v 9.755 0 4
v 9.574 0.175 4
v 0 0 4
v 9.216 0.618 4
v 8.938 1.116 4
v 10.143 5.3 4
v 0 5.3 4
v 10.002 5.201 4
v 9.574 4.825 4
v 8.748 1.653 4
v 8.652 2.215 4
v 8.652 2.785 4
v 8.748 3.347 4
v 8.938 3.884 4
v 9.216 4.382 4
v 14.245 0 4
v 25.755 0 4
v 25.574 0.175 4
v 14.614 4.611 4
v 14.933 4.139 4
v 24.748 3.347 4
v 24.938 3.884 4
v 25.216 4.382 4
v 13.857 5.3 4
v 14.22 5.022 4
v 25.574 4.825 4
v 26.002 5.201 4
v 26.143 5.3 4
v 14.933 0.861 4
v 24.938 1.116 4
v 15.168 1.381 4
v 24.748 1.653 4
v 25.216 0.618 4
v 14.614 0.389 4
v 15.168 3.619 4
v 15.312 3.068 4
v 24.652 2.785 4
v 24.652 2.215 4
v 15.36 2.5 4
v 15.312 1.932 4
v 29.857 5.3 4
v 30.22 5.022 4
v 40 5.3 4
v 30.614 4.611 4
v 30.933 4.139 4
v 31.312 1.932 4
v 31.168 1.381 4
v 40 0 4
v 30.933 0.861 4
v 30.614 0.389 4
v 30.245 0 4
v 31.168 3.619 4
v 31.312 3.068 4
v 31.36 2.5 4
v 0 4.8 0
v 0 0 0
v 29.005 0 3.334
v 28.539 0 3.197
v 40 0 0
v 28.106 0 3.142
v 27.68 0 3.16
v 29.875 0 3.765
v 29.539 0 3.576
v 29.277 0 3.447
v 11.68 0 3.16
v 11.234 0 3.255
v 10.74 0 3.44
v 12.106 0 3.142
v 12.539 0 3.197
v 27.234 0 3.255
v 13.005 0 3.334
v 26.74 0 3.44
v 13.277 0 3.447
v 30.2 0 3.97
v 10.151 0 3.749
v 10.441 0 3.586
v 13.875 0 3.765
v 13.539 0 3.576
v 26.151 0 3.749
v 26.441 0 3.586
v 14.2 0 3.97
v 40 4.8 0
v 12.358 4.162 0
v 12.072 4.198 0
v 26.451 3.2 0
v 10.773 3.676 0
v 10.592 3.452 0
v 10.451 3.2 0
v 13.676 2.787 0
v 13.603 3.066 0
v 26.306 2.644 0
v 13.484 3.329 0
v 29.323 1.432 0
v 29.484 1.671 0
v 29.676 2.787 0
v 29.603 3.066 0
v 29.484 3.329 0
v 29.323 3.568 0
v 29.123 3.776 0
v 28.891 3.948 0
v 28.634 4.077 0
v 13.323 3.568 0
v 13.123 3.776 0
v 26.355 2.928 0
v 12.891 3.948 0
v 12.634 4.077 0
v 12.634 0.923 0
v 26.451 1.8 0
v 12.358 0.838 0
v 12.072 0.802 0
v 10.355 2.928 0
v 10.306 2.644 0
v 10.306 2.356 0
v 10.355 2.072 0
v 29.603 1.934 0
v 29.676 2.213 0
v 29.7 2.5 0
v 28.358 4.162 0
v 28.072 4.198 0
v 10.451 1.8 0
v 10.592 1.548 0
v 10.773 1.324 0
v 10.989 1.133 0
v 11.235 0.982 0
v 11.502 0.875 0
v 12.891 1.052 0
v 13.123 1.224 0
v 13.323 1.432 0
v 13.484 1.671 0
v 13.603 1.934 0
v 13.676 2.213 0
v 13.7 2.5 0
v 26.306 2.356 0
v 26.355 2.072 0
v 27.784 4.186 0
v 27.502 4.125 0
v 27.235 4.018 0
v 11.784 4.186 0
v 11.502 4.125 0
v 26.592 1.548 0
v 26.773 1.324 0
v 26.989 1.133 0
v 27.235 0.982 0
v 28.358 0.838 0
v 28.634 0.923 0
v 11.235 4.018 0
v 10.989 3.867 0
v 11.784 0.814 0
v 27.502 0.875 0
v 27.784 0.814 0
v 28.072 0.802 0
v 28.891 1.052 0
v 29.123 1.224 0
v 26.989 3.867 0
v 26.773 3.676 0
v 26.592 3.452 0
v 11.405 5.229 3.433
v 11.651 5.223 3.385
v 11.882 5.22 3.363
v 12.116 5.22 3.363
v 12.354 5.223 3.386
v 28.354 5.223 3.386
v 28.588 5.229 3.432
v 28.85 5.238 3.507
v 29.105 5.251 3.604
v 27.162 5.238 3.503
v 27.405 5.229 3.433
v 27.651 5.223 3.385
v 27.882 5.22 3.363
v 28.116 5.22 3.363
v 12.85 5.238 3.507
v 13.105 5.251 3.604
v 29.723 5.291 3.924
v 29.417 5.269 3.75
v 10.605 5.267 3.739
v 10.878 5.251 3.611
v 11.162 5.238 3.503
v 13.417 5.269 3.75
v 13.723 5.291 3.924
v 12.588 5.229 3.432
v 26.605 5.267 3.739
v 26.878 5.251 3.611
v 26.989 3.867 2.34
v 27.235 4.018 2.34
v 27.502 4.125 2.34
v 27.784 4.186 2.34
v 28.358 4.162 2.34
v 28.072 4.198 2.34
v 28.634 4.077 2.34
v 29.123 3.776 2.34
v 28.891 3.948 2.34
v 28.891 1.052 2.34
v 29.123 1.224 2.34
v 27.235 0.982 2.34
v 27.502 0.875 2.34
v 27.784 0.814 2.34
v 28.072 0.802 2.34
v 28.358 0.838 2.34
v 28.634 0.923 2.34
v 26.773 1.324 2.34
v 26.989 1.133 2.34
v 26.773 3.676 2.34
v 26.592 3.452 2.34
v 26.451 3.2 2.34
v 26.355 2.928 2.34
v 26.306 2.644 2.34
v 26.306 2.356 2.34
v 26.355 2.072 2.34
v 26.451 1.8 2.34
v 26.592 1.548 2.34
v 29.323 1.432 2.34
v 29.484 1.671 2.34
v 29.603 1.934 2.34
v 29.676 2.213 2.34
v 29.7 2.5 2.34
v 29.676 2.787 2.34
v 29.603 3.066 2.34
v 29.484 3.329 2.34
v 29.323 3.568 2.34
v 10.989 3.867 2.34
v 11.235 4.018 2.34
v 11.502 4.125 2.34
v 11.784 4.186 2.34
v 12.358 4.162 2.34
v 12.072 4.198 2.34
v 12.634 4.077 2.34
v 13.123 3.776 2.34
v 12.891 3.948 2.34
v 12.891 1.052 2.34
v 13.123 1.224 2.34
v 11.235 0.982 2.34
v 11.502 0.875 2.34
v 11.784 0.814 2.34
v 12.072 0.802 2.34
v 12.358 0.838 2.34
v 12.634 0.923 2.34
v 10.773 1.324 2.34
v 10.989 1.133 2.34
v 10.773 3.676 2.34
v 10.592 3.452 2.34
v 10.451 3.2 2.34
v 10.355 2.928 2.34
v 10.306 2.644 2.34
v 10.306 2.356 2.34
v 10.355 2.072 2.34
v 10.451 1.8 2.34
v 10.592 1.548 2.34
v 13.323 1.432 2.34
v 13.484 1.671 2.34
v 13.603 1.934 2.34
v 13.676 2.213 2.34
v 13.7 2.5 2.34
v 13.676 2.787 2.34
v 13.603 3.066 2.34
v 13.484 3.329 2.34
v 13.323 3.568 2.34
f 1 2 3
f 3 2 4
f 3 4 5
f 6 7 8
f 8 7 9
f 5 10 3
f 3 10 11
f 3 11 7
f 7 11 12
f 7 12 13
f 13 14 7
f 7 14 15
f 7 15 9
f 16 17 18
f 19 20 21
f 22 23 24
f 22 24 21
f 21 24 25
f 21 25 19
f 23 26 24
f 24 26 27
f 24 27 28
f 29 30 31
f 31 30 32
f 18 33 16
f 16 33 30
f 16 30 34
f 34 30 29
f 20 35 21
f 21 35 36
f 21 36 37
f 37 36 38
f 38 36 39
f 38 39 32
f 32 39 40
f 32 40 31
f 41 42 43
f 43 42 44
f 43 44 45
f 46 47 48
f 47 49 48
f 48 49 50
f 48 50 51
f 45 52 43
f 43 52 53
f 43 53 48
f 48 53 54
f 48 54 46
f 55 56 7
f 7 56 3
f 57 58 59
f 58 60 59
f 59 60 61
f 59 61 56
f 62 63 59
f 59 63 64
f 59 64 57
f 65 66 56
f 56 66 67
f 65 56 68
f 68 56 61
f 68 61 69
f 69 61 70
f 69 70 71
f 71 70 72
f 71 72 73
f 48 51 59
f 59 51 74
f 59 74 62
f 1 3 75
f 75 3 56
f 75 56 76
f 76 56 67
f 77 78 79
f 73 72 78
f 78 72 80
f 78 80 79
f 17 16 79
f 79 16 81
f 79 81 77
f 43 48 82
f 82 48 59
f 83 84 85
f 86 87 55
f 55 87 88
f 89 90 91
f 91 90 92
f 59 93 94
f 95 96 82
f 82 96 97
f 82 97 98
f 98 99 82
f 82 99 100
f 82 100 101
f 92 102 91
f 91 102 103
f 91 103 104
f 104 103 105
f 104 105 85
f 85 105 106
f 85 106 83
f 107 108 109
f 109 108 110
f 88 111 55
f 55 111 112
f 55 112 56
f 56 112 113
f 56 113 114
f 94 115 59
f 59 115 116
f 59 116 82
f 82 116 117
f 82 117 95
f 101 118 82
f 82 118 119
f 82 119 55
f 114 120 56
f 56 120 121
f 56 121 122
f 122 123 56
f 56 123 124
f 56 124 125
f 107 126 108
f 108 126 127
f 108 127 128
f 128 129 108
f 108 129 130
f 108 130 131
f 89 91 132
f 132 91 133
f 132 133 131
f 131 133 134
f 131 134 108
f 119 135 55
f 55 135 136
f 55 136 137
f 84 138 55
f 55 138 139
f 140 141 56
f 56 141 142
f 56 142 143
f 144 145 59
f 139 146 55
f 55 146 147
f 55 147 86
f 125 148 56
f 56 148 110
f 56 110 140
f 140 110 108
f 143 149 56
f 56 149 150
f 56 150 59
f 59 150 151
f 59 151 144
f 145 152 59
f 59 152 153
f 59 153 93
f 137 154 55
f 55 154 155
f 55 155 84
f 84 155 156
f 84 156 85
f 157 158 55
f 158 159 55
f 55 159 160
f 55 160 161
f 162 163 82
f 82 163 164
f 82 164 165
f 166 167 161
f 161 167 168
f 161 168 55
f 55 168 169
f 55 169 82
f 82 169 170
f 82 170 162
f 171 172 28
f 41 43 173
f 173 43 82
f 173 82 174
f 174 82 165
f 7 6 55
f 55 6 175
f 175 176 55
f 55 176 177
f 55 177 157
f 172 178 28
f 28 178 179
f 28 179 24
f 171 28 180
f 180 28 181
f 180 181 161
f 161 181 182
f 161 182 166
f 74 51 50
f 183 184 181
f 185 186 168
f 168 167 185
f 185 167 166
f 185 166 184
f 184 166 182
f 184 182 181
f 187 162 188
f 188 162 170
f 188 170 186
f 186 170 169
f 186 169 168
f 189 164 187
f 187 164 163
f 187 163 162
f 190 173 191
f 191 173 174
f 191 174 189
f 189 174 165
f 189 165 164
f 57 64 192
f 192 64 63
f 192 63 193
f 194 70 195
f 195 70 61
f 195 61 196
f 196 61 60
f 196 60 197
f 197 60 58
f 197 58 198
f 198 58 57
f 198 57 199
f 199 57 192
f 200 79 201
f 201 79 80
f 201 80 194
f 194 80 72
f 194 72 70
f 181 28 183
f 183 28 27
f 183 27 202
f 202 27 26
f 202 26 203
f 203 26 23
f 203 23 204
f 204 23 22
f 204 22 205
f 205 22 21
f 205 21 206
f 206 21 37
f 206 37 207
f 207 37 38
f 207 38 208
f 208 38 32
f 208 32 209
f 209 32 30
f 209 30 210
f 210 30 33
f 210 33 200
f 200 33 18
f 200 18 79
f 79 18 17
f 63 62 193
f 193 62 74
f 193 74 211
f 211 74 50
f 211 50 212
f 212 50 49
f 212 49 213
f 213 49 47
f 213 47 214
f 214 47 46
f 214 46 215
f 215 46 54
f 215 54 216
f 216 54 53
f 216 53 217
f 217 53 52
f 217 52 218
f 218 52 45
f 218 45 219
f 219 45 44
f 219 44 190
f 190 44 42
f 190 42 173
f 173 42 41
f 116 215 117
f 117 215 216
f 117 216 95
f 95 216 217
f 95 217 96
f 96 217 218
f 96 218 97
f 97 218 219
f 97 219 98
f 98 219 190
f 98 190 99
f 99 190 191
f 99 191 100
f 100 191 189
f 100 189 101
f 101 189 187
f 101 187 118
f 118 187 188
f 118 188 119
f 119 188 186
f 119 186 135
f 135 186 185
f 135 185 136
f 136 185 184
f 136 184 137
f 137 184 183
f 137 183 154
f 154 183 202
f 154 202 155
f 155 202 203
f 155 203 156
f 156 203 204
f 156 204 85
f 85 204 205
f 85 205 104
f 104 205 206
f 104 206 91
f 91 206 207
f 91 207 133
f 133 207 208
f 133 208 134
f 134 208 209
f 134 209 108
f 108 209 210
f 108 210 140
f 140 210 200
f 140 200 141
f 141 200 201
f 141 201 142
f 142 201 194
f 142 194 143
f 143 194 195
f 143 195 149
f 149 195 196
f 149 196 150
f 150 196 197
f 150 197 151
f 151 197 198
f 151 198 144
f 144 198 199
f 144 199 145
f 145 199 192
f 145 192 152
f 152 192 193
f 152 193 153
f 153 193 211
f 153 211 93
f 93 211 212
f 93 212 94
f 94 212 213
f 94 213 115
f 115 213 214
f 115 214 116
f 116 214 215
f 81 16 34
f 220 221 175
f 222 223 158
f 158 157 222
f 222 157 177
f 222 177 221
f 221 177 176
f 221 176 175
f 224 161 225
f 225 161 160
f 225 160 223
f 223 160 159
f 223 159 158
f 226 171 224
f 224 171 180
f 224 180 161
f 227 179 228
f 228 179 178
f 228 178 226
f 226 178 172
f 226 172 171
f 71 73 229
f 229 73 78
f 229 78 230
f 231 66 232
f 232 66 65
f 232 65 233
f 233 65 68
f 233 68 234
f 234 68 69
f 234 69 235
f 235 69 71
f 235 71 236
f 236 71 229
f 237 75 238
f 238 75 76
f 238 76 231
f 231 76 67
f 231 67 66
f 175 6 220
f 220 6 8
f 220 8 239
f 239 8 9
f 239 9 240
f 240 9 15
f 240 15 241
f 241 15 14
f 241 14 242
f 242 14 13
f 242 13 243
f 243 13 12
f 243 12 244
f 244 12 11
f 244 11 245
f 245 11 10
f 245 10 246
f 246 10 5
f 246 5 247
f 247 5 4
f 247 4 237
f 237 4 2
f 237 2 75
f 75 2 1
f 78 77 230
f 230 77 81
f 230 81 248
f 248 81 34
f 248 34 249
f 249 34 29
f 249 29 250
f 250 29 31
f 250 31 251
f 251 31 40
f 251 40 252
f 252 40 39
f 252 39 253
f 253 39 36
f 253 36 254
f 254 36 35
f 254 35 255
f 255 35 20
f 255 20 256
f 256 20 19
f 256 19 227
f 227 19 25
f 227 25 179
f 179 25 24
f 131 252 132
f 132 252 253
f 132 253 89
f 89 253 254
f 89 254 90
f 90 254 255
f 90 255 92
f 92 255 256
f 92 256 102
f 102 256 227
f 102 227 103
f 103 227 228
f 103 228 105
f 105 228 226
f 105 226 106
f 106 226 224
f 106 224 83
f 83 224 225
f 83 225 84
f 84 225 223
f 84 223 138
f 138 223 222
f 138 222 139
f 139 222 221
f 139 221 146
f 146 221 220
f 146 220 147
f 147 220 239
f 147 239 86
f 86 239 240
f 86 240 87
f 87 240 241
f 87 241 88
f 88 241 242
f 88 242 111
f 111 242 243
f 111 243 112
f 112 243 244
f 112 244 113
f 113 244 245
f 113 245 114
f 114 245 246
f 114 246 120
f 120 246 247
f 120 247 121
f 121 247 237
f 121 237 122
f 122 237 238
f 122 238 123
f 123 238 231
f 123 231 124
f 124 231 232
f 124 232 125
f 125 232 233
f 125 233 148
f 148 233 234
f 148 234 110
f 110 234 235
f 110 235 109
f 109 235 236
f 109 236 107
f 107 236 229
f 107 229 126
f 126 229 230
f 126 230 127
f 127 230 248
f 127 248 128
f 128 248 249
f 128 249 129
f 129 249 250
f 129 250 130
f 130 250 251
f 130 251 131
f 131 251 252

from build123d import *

# Parameters (mm, degrees)
SKETCH_1_W                   = 40
SKETCH_1_H                   = 5.3
EXTRUDE_1_DEPTH              = 4
CUT_EXTRUDE_1_DEPTH          = 41.547379693
SKETCH_3_R                   = 1.5
CUT_EXTRUDE_2_DEPTH          = 41.547379693
HOLE_WIZARD_M3_1_D           = 3.4
HOLE_WIZARD_M3_1_CSINK_D     = 6.72
HOLE_WIZARD_M3_1_CSINK_ANGLE = 90


with BuildPart() as part:
    # 草图1 → 凸台-拉伸1 (new body)
    with BuildSketch(Plane.XY):
        with Locations((20, 2.65)):
            Rectangle(SKETCH_1_W, SKETCH_1_H)
    extrude(amount=EXTRUDE_1_DEPTH)

    # 草图2 → 切除-拉伸1 (cut, through all)
    with BuildSketch(Plane(origin=(40, 0, 0), x_dir=(0, 0, -1), z_dir=(1, 0, 0))):
        Polygon((-4, 5.3), (0, 5.3), (0, 4.8), align=None)
    extrude(amount=-CUT_EXTRUDE_1_DEPTH, mode=Mode.SUBTRACT)

    # 草图3 → 切除-拉伸2 (cut, through all)
    with BuildSketch(Plane.XY.offset(4)):
        with Locations((12, 2.5)):
            Circle(SKETCH_3_R)
        with Locations(Location((28, 2.5, 0), (0, 0, 180))):
            Circle(SKETCH_3_R)
    extrude(amount=-CUT_EXTRUDE_2_DEPTH, mode=Mode.SUBTRACT)

    # M3 六角凹锥坑螺钉的锥形沉头孔1 (through all)
    with Locations(Plane(origin=(12, 2.5, 4), x_dir=(1, 0, 0), z_dir=(0, 0, 1))):
        with Locations((0, 0), (16, 0)):
            CounterSinkHole(HOLE_WIZARD_M3_1_D / 2, HOLE_WIZARD_M3_1_CSINK_D / 2, counter_sink_angle=HOLE_WIZARD_M3_1_CSINK_ANGLE)


solid = part.part
